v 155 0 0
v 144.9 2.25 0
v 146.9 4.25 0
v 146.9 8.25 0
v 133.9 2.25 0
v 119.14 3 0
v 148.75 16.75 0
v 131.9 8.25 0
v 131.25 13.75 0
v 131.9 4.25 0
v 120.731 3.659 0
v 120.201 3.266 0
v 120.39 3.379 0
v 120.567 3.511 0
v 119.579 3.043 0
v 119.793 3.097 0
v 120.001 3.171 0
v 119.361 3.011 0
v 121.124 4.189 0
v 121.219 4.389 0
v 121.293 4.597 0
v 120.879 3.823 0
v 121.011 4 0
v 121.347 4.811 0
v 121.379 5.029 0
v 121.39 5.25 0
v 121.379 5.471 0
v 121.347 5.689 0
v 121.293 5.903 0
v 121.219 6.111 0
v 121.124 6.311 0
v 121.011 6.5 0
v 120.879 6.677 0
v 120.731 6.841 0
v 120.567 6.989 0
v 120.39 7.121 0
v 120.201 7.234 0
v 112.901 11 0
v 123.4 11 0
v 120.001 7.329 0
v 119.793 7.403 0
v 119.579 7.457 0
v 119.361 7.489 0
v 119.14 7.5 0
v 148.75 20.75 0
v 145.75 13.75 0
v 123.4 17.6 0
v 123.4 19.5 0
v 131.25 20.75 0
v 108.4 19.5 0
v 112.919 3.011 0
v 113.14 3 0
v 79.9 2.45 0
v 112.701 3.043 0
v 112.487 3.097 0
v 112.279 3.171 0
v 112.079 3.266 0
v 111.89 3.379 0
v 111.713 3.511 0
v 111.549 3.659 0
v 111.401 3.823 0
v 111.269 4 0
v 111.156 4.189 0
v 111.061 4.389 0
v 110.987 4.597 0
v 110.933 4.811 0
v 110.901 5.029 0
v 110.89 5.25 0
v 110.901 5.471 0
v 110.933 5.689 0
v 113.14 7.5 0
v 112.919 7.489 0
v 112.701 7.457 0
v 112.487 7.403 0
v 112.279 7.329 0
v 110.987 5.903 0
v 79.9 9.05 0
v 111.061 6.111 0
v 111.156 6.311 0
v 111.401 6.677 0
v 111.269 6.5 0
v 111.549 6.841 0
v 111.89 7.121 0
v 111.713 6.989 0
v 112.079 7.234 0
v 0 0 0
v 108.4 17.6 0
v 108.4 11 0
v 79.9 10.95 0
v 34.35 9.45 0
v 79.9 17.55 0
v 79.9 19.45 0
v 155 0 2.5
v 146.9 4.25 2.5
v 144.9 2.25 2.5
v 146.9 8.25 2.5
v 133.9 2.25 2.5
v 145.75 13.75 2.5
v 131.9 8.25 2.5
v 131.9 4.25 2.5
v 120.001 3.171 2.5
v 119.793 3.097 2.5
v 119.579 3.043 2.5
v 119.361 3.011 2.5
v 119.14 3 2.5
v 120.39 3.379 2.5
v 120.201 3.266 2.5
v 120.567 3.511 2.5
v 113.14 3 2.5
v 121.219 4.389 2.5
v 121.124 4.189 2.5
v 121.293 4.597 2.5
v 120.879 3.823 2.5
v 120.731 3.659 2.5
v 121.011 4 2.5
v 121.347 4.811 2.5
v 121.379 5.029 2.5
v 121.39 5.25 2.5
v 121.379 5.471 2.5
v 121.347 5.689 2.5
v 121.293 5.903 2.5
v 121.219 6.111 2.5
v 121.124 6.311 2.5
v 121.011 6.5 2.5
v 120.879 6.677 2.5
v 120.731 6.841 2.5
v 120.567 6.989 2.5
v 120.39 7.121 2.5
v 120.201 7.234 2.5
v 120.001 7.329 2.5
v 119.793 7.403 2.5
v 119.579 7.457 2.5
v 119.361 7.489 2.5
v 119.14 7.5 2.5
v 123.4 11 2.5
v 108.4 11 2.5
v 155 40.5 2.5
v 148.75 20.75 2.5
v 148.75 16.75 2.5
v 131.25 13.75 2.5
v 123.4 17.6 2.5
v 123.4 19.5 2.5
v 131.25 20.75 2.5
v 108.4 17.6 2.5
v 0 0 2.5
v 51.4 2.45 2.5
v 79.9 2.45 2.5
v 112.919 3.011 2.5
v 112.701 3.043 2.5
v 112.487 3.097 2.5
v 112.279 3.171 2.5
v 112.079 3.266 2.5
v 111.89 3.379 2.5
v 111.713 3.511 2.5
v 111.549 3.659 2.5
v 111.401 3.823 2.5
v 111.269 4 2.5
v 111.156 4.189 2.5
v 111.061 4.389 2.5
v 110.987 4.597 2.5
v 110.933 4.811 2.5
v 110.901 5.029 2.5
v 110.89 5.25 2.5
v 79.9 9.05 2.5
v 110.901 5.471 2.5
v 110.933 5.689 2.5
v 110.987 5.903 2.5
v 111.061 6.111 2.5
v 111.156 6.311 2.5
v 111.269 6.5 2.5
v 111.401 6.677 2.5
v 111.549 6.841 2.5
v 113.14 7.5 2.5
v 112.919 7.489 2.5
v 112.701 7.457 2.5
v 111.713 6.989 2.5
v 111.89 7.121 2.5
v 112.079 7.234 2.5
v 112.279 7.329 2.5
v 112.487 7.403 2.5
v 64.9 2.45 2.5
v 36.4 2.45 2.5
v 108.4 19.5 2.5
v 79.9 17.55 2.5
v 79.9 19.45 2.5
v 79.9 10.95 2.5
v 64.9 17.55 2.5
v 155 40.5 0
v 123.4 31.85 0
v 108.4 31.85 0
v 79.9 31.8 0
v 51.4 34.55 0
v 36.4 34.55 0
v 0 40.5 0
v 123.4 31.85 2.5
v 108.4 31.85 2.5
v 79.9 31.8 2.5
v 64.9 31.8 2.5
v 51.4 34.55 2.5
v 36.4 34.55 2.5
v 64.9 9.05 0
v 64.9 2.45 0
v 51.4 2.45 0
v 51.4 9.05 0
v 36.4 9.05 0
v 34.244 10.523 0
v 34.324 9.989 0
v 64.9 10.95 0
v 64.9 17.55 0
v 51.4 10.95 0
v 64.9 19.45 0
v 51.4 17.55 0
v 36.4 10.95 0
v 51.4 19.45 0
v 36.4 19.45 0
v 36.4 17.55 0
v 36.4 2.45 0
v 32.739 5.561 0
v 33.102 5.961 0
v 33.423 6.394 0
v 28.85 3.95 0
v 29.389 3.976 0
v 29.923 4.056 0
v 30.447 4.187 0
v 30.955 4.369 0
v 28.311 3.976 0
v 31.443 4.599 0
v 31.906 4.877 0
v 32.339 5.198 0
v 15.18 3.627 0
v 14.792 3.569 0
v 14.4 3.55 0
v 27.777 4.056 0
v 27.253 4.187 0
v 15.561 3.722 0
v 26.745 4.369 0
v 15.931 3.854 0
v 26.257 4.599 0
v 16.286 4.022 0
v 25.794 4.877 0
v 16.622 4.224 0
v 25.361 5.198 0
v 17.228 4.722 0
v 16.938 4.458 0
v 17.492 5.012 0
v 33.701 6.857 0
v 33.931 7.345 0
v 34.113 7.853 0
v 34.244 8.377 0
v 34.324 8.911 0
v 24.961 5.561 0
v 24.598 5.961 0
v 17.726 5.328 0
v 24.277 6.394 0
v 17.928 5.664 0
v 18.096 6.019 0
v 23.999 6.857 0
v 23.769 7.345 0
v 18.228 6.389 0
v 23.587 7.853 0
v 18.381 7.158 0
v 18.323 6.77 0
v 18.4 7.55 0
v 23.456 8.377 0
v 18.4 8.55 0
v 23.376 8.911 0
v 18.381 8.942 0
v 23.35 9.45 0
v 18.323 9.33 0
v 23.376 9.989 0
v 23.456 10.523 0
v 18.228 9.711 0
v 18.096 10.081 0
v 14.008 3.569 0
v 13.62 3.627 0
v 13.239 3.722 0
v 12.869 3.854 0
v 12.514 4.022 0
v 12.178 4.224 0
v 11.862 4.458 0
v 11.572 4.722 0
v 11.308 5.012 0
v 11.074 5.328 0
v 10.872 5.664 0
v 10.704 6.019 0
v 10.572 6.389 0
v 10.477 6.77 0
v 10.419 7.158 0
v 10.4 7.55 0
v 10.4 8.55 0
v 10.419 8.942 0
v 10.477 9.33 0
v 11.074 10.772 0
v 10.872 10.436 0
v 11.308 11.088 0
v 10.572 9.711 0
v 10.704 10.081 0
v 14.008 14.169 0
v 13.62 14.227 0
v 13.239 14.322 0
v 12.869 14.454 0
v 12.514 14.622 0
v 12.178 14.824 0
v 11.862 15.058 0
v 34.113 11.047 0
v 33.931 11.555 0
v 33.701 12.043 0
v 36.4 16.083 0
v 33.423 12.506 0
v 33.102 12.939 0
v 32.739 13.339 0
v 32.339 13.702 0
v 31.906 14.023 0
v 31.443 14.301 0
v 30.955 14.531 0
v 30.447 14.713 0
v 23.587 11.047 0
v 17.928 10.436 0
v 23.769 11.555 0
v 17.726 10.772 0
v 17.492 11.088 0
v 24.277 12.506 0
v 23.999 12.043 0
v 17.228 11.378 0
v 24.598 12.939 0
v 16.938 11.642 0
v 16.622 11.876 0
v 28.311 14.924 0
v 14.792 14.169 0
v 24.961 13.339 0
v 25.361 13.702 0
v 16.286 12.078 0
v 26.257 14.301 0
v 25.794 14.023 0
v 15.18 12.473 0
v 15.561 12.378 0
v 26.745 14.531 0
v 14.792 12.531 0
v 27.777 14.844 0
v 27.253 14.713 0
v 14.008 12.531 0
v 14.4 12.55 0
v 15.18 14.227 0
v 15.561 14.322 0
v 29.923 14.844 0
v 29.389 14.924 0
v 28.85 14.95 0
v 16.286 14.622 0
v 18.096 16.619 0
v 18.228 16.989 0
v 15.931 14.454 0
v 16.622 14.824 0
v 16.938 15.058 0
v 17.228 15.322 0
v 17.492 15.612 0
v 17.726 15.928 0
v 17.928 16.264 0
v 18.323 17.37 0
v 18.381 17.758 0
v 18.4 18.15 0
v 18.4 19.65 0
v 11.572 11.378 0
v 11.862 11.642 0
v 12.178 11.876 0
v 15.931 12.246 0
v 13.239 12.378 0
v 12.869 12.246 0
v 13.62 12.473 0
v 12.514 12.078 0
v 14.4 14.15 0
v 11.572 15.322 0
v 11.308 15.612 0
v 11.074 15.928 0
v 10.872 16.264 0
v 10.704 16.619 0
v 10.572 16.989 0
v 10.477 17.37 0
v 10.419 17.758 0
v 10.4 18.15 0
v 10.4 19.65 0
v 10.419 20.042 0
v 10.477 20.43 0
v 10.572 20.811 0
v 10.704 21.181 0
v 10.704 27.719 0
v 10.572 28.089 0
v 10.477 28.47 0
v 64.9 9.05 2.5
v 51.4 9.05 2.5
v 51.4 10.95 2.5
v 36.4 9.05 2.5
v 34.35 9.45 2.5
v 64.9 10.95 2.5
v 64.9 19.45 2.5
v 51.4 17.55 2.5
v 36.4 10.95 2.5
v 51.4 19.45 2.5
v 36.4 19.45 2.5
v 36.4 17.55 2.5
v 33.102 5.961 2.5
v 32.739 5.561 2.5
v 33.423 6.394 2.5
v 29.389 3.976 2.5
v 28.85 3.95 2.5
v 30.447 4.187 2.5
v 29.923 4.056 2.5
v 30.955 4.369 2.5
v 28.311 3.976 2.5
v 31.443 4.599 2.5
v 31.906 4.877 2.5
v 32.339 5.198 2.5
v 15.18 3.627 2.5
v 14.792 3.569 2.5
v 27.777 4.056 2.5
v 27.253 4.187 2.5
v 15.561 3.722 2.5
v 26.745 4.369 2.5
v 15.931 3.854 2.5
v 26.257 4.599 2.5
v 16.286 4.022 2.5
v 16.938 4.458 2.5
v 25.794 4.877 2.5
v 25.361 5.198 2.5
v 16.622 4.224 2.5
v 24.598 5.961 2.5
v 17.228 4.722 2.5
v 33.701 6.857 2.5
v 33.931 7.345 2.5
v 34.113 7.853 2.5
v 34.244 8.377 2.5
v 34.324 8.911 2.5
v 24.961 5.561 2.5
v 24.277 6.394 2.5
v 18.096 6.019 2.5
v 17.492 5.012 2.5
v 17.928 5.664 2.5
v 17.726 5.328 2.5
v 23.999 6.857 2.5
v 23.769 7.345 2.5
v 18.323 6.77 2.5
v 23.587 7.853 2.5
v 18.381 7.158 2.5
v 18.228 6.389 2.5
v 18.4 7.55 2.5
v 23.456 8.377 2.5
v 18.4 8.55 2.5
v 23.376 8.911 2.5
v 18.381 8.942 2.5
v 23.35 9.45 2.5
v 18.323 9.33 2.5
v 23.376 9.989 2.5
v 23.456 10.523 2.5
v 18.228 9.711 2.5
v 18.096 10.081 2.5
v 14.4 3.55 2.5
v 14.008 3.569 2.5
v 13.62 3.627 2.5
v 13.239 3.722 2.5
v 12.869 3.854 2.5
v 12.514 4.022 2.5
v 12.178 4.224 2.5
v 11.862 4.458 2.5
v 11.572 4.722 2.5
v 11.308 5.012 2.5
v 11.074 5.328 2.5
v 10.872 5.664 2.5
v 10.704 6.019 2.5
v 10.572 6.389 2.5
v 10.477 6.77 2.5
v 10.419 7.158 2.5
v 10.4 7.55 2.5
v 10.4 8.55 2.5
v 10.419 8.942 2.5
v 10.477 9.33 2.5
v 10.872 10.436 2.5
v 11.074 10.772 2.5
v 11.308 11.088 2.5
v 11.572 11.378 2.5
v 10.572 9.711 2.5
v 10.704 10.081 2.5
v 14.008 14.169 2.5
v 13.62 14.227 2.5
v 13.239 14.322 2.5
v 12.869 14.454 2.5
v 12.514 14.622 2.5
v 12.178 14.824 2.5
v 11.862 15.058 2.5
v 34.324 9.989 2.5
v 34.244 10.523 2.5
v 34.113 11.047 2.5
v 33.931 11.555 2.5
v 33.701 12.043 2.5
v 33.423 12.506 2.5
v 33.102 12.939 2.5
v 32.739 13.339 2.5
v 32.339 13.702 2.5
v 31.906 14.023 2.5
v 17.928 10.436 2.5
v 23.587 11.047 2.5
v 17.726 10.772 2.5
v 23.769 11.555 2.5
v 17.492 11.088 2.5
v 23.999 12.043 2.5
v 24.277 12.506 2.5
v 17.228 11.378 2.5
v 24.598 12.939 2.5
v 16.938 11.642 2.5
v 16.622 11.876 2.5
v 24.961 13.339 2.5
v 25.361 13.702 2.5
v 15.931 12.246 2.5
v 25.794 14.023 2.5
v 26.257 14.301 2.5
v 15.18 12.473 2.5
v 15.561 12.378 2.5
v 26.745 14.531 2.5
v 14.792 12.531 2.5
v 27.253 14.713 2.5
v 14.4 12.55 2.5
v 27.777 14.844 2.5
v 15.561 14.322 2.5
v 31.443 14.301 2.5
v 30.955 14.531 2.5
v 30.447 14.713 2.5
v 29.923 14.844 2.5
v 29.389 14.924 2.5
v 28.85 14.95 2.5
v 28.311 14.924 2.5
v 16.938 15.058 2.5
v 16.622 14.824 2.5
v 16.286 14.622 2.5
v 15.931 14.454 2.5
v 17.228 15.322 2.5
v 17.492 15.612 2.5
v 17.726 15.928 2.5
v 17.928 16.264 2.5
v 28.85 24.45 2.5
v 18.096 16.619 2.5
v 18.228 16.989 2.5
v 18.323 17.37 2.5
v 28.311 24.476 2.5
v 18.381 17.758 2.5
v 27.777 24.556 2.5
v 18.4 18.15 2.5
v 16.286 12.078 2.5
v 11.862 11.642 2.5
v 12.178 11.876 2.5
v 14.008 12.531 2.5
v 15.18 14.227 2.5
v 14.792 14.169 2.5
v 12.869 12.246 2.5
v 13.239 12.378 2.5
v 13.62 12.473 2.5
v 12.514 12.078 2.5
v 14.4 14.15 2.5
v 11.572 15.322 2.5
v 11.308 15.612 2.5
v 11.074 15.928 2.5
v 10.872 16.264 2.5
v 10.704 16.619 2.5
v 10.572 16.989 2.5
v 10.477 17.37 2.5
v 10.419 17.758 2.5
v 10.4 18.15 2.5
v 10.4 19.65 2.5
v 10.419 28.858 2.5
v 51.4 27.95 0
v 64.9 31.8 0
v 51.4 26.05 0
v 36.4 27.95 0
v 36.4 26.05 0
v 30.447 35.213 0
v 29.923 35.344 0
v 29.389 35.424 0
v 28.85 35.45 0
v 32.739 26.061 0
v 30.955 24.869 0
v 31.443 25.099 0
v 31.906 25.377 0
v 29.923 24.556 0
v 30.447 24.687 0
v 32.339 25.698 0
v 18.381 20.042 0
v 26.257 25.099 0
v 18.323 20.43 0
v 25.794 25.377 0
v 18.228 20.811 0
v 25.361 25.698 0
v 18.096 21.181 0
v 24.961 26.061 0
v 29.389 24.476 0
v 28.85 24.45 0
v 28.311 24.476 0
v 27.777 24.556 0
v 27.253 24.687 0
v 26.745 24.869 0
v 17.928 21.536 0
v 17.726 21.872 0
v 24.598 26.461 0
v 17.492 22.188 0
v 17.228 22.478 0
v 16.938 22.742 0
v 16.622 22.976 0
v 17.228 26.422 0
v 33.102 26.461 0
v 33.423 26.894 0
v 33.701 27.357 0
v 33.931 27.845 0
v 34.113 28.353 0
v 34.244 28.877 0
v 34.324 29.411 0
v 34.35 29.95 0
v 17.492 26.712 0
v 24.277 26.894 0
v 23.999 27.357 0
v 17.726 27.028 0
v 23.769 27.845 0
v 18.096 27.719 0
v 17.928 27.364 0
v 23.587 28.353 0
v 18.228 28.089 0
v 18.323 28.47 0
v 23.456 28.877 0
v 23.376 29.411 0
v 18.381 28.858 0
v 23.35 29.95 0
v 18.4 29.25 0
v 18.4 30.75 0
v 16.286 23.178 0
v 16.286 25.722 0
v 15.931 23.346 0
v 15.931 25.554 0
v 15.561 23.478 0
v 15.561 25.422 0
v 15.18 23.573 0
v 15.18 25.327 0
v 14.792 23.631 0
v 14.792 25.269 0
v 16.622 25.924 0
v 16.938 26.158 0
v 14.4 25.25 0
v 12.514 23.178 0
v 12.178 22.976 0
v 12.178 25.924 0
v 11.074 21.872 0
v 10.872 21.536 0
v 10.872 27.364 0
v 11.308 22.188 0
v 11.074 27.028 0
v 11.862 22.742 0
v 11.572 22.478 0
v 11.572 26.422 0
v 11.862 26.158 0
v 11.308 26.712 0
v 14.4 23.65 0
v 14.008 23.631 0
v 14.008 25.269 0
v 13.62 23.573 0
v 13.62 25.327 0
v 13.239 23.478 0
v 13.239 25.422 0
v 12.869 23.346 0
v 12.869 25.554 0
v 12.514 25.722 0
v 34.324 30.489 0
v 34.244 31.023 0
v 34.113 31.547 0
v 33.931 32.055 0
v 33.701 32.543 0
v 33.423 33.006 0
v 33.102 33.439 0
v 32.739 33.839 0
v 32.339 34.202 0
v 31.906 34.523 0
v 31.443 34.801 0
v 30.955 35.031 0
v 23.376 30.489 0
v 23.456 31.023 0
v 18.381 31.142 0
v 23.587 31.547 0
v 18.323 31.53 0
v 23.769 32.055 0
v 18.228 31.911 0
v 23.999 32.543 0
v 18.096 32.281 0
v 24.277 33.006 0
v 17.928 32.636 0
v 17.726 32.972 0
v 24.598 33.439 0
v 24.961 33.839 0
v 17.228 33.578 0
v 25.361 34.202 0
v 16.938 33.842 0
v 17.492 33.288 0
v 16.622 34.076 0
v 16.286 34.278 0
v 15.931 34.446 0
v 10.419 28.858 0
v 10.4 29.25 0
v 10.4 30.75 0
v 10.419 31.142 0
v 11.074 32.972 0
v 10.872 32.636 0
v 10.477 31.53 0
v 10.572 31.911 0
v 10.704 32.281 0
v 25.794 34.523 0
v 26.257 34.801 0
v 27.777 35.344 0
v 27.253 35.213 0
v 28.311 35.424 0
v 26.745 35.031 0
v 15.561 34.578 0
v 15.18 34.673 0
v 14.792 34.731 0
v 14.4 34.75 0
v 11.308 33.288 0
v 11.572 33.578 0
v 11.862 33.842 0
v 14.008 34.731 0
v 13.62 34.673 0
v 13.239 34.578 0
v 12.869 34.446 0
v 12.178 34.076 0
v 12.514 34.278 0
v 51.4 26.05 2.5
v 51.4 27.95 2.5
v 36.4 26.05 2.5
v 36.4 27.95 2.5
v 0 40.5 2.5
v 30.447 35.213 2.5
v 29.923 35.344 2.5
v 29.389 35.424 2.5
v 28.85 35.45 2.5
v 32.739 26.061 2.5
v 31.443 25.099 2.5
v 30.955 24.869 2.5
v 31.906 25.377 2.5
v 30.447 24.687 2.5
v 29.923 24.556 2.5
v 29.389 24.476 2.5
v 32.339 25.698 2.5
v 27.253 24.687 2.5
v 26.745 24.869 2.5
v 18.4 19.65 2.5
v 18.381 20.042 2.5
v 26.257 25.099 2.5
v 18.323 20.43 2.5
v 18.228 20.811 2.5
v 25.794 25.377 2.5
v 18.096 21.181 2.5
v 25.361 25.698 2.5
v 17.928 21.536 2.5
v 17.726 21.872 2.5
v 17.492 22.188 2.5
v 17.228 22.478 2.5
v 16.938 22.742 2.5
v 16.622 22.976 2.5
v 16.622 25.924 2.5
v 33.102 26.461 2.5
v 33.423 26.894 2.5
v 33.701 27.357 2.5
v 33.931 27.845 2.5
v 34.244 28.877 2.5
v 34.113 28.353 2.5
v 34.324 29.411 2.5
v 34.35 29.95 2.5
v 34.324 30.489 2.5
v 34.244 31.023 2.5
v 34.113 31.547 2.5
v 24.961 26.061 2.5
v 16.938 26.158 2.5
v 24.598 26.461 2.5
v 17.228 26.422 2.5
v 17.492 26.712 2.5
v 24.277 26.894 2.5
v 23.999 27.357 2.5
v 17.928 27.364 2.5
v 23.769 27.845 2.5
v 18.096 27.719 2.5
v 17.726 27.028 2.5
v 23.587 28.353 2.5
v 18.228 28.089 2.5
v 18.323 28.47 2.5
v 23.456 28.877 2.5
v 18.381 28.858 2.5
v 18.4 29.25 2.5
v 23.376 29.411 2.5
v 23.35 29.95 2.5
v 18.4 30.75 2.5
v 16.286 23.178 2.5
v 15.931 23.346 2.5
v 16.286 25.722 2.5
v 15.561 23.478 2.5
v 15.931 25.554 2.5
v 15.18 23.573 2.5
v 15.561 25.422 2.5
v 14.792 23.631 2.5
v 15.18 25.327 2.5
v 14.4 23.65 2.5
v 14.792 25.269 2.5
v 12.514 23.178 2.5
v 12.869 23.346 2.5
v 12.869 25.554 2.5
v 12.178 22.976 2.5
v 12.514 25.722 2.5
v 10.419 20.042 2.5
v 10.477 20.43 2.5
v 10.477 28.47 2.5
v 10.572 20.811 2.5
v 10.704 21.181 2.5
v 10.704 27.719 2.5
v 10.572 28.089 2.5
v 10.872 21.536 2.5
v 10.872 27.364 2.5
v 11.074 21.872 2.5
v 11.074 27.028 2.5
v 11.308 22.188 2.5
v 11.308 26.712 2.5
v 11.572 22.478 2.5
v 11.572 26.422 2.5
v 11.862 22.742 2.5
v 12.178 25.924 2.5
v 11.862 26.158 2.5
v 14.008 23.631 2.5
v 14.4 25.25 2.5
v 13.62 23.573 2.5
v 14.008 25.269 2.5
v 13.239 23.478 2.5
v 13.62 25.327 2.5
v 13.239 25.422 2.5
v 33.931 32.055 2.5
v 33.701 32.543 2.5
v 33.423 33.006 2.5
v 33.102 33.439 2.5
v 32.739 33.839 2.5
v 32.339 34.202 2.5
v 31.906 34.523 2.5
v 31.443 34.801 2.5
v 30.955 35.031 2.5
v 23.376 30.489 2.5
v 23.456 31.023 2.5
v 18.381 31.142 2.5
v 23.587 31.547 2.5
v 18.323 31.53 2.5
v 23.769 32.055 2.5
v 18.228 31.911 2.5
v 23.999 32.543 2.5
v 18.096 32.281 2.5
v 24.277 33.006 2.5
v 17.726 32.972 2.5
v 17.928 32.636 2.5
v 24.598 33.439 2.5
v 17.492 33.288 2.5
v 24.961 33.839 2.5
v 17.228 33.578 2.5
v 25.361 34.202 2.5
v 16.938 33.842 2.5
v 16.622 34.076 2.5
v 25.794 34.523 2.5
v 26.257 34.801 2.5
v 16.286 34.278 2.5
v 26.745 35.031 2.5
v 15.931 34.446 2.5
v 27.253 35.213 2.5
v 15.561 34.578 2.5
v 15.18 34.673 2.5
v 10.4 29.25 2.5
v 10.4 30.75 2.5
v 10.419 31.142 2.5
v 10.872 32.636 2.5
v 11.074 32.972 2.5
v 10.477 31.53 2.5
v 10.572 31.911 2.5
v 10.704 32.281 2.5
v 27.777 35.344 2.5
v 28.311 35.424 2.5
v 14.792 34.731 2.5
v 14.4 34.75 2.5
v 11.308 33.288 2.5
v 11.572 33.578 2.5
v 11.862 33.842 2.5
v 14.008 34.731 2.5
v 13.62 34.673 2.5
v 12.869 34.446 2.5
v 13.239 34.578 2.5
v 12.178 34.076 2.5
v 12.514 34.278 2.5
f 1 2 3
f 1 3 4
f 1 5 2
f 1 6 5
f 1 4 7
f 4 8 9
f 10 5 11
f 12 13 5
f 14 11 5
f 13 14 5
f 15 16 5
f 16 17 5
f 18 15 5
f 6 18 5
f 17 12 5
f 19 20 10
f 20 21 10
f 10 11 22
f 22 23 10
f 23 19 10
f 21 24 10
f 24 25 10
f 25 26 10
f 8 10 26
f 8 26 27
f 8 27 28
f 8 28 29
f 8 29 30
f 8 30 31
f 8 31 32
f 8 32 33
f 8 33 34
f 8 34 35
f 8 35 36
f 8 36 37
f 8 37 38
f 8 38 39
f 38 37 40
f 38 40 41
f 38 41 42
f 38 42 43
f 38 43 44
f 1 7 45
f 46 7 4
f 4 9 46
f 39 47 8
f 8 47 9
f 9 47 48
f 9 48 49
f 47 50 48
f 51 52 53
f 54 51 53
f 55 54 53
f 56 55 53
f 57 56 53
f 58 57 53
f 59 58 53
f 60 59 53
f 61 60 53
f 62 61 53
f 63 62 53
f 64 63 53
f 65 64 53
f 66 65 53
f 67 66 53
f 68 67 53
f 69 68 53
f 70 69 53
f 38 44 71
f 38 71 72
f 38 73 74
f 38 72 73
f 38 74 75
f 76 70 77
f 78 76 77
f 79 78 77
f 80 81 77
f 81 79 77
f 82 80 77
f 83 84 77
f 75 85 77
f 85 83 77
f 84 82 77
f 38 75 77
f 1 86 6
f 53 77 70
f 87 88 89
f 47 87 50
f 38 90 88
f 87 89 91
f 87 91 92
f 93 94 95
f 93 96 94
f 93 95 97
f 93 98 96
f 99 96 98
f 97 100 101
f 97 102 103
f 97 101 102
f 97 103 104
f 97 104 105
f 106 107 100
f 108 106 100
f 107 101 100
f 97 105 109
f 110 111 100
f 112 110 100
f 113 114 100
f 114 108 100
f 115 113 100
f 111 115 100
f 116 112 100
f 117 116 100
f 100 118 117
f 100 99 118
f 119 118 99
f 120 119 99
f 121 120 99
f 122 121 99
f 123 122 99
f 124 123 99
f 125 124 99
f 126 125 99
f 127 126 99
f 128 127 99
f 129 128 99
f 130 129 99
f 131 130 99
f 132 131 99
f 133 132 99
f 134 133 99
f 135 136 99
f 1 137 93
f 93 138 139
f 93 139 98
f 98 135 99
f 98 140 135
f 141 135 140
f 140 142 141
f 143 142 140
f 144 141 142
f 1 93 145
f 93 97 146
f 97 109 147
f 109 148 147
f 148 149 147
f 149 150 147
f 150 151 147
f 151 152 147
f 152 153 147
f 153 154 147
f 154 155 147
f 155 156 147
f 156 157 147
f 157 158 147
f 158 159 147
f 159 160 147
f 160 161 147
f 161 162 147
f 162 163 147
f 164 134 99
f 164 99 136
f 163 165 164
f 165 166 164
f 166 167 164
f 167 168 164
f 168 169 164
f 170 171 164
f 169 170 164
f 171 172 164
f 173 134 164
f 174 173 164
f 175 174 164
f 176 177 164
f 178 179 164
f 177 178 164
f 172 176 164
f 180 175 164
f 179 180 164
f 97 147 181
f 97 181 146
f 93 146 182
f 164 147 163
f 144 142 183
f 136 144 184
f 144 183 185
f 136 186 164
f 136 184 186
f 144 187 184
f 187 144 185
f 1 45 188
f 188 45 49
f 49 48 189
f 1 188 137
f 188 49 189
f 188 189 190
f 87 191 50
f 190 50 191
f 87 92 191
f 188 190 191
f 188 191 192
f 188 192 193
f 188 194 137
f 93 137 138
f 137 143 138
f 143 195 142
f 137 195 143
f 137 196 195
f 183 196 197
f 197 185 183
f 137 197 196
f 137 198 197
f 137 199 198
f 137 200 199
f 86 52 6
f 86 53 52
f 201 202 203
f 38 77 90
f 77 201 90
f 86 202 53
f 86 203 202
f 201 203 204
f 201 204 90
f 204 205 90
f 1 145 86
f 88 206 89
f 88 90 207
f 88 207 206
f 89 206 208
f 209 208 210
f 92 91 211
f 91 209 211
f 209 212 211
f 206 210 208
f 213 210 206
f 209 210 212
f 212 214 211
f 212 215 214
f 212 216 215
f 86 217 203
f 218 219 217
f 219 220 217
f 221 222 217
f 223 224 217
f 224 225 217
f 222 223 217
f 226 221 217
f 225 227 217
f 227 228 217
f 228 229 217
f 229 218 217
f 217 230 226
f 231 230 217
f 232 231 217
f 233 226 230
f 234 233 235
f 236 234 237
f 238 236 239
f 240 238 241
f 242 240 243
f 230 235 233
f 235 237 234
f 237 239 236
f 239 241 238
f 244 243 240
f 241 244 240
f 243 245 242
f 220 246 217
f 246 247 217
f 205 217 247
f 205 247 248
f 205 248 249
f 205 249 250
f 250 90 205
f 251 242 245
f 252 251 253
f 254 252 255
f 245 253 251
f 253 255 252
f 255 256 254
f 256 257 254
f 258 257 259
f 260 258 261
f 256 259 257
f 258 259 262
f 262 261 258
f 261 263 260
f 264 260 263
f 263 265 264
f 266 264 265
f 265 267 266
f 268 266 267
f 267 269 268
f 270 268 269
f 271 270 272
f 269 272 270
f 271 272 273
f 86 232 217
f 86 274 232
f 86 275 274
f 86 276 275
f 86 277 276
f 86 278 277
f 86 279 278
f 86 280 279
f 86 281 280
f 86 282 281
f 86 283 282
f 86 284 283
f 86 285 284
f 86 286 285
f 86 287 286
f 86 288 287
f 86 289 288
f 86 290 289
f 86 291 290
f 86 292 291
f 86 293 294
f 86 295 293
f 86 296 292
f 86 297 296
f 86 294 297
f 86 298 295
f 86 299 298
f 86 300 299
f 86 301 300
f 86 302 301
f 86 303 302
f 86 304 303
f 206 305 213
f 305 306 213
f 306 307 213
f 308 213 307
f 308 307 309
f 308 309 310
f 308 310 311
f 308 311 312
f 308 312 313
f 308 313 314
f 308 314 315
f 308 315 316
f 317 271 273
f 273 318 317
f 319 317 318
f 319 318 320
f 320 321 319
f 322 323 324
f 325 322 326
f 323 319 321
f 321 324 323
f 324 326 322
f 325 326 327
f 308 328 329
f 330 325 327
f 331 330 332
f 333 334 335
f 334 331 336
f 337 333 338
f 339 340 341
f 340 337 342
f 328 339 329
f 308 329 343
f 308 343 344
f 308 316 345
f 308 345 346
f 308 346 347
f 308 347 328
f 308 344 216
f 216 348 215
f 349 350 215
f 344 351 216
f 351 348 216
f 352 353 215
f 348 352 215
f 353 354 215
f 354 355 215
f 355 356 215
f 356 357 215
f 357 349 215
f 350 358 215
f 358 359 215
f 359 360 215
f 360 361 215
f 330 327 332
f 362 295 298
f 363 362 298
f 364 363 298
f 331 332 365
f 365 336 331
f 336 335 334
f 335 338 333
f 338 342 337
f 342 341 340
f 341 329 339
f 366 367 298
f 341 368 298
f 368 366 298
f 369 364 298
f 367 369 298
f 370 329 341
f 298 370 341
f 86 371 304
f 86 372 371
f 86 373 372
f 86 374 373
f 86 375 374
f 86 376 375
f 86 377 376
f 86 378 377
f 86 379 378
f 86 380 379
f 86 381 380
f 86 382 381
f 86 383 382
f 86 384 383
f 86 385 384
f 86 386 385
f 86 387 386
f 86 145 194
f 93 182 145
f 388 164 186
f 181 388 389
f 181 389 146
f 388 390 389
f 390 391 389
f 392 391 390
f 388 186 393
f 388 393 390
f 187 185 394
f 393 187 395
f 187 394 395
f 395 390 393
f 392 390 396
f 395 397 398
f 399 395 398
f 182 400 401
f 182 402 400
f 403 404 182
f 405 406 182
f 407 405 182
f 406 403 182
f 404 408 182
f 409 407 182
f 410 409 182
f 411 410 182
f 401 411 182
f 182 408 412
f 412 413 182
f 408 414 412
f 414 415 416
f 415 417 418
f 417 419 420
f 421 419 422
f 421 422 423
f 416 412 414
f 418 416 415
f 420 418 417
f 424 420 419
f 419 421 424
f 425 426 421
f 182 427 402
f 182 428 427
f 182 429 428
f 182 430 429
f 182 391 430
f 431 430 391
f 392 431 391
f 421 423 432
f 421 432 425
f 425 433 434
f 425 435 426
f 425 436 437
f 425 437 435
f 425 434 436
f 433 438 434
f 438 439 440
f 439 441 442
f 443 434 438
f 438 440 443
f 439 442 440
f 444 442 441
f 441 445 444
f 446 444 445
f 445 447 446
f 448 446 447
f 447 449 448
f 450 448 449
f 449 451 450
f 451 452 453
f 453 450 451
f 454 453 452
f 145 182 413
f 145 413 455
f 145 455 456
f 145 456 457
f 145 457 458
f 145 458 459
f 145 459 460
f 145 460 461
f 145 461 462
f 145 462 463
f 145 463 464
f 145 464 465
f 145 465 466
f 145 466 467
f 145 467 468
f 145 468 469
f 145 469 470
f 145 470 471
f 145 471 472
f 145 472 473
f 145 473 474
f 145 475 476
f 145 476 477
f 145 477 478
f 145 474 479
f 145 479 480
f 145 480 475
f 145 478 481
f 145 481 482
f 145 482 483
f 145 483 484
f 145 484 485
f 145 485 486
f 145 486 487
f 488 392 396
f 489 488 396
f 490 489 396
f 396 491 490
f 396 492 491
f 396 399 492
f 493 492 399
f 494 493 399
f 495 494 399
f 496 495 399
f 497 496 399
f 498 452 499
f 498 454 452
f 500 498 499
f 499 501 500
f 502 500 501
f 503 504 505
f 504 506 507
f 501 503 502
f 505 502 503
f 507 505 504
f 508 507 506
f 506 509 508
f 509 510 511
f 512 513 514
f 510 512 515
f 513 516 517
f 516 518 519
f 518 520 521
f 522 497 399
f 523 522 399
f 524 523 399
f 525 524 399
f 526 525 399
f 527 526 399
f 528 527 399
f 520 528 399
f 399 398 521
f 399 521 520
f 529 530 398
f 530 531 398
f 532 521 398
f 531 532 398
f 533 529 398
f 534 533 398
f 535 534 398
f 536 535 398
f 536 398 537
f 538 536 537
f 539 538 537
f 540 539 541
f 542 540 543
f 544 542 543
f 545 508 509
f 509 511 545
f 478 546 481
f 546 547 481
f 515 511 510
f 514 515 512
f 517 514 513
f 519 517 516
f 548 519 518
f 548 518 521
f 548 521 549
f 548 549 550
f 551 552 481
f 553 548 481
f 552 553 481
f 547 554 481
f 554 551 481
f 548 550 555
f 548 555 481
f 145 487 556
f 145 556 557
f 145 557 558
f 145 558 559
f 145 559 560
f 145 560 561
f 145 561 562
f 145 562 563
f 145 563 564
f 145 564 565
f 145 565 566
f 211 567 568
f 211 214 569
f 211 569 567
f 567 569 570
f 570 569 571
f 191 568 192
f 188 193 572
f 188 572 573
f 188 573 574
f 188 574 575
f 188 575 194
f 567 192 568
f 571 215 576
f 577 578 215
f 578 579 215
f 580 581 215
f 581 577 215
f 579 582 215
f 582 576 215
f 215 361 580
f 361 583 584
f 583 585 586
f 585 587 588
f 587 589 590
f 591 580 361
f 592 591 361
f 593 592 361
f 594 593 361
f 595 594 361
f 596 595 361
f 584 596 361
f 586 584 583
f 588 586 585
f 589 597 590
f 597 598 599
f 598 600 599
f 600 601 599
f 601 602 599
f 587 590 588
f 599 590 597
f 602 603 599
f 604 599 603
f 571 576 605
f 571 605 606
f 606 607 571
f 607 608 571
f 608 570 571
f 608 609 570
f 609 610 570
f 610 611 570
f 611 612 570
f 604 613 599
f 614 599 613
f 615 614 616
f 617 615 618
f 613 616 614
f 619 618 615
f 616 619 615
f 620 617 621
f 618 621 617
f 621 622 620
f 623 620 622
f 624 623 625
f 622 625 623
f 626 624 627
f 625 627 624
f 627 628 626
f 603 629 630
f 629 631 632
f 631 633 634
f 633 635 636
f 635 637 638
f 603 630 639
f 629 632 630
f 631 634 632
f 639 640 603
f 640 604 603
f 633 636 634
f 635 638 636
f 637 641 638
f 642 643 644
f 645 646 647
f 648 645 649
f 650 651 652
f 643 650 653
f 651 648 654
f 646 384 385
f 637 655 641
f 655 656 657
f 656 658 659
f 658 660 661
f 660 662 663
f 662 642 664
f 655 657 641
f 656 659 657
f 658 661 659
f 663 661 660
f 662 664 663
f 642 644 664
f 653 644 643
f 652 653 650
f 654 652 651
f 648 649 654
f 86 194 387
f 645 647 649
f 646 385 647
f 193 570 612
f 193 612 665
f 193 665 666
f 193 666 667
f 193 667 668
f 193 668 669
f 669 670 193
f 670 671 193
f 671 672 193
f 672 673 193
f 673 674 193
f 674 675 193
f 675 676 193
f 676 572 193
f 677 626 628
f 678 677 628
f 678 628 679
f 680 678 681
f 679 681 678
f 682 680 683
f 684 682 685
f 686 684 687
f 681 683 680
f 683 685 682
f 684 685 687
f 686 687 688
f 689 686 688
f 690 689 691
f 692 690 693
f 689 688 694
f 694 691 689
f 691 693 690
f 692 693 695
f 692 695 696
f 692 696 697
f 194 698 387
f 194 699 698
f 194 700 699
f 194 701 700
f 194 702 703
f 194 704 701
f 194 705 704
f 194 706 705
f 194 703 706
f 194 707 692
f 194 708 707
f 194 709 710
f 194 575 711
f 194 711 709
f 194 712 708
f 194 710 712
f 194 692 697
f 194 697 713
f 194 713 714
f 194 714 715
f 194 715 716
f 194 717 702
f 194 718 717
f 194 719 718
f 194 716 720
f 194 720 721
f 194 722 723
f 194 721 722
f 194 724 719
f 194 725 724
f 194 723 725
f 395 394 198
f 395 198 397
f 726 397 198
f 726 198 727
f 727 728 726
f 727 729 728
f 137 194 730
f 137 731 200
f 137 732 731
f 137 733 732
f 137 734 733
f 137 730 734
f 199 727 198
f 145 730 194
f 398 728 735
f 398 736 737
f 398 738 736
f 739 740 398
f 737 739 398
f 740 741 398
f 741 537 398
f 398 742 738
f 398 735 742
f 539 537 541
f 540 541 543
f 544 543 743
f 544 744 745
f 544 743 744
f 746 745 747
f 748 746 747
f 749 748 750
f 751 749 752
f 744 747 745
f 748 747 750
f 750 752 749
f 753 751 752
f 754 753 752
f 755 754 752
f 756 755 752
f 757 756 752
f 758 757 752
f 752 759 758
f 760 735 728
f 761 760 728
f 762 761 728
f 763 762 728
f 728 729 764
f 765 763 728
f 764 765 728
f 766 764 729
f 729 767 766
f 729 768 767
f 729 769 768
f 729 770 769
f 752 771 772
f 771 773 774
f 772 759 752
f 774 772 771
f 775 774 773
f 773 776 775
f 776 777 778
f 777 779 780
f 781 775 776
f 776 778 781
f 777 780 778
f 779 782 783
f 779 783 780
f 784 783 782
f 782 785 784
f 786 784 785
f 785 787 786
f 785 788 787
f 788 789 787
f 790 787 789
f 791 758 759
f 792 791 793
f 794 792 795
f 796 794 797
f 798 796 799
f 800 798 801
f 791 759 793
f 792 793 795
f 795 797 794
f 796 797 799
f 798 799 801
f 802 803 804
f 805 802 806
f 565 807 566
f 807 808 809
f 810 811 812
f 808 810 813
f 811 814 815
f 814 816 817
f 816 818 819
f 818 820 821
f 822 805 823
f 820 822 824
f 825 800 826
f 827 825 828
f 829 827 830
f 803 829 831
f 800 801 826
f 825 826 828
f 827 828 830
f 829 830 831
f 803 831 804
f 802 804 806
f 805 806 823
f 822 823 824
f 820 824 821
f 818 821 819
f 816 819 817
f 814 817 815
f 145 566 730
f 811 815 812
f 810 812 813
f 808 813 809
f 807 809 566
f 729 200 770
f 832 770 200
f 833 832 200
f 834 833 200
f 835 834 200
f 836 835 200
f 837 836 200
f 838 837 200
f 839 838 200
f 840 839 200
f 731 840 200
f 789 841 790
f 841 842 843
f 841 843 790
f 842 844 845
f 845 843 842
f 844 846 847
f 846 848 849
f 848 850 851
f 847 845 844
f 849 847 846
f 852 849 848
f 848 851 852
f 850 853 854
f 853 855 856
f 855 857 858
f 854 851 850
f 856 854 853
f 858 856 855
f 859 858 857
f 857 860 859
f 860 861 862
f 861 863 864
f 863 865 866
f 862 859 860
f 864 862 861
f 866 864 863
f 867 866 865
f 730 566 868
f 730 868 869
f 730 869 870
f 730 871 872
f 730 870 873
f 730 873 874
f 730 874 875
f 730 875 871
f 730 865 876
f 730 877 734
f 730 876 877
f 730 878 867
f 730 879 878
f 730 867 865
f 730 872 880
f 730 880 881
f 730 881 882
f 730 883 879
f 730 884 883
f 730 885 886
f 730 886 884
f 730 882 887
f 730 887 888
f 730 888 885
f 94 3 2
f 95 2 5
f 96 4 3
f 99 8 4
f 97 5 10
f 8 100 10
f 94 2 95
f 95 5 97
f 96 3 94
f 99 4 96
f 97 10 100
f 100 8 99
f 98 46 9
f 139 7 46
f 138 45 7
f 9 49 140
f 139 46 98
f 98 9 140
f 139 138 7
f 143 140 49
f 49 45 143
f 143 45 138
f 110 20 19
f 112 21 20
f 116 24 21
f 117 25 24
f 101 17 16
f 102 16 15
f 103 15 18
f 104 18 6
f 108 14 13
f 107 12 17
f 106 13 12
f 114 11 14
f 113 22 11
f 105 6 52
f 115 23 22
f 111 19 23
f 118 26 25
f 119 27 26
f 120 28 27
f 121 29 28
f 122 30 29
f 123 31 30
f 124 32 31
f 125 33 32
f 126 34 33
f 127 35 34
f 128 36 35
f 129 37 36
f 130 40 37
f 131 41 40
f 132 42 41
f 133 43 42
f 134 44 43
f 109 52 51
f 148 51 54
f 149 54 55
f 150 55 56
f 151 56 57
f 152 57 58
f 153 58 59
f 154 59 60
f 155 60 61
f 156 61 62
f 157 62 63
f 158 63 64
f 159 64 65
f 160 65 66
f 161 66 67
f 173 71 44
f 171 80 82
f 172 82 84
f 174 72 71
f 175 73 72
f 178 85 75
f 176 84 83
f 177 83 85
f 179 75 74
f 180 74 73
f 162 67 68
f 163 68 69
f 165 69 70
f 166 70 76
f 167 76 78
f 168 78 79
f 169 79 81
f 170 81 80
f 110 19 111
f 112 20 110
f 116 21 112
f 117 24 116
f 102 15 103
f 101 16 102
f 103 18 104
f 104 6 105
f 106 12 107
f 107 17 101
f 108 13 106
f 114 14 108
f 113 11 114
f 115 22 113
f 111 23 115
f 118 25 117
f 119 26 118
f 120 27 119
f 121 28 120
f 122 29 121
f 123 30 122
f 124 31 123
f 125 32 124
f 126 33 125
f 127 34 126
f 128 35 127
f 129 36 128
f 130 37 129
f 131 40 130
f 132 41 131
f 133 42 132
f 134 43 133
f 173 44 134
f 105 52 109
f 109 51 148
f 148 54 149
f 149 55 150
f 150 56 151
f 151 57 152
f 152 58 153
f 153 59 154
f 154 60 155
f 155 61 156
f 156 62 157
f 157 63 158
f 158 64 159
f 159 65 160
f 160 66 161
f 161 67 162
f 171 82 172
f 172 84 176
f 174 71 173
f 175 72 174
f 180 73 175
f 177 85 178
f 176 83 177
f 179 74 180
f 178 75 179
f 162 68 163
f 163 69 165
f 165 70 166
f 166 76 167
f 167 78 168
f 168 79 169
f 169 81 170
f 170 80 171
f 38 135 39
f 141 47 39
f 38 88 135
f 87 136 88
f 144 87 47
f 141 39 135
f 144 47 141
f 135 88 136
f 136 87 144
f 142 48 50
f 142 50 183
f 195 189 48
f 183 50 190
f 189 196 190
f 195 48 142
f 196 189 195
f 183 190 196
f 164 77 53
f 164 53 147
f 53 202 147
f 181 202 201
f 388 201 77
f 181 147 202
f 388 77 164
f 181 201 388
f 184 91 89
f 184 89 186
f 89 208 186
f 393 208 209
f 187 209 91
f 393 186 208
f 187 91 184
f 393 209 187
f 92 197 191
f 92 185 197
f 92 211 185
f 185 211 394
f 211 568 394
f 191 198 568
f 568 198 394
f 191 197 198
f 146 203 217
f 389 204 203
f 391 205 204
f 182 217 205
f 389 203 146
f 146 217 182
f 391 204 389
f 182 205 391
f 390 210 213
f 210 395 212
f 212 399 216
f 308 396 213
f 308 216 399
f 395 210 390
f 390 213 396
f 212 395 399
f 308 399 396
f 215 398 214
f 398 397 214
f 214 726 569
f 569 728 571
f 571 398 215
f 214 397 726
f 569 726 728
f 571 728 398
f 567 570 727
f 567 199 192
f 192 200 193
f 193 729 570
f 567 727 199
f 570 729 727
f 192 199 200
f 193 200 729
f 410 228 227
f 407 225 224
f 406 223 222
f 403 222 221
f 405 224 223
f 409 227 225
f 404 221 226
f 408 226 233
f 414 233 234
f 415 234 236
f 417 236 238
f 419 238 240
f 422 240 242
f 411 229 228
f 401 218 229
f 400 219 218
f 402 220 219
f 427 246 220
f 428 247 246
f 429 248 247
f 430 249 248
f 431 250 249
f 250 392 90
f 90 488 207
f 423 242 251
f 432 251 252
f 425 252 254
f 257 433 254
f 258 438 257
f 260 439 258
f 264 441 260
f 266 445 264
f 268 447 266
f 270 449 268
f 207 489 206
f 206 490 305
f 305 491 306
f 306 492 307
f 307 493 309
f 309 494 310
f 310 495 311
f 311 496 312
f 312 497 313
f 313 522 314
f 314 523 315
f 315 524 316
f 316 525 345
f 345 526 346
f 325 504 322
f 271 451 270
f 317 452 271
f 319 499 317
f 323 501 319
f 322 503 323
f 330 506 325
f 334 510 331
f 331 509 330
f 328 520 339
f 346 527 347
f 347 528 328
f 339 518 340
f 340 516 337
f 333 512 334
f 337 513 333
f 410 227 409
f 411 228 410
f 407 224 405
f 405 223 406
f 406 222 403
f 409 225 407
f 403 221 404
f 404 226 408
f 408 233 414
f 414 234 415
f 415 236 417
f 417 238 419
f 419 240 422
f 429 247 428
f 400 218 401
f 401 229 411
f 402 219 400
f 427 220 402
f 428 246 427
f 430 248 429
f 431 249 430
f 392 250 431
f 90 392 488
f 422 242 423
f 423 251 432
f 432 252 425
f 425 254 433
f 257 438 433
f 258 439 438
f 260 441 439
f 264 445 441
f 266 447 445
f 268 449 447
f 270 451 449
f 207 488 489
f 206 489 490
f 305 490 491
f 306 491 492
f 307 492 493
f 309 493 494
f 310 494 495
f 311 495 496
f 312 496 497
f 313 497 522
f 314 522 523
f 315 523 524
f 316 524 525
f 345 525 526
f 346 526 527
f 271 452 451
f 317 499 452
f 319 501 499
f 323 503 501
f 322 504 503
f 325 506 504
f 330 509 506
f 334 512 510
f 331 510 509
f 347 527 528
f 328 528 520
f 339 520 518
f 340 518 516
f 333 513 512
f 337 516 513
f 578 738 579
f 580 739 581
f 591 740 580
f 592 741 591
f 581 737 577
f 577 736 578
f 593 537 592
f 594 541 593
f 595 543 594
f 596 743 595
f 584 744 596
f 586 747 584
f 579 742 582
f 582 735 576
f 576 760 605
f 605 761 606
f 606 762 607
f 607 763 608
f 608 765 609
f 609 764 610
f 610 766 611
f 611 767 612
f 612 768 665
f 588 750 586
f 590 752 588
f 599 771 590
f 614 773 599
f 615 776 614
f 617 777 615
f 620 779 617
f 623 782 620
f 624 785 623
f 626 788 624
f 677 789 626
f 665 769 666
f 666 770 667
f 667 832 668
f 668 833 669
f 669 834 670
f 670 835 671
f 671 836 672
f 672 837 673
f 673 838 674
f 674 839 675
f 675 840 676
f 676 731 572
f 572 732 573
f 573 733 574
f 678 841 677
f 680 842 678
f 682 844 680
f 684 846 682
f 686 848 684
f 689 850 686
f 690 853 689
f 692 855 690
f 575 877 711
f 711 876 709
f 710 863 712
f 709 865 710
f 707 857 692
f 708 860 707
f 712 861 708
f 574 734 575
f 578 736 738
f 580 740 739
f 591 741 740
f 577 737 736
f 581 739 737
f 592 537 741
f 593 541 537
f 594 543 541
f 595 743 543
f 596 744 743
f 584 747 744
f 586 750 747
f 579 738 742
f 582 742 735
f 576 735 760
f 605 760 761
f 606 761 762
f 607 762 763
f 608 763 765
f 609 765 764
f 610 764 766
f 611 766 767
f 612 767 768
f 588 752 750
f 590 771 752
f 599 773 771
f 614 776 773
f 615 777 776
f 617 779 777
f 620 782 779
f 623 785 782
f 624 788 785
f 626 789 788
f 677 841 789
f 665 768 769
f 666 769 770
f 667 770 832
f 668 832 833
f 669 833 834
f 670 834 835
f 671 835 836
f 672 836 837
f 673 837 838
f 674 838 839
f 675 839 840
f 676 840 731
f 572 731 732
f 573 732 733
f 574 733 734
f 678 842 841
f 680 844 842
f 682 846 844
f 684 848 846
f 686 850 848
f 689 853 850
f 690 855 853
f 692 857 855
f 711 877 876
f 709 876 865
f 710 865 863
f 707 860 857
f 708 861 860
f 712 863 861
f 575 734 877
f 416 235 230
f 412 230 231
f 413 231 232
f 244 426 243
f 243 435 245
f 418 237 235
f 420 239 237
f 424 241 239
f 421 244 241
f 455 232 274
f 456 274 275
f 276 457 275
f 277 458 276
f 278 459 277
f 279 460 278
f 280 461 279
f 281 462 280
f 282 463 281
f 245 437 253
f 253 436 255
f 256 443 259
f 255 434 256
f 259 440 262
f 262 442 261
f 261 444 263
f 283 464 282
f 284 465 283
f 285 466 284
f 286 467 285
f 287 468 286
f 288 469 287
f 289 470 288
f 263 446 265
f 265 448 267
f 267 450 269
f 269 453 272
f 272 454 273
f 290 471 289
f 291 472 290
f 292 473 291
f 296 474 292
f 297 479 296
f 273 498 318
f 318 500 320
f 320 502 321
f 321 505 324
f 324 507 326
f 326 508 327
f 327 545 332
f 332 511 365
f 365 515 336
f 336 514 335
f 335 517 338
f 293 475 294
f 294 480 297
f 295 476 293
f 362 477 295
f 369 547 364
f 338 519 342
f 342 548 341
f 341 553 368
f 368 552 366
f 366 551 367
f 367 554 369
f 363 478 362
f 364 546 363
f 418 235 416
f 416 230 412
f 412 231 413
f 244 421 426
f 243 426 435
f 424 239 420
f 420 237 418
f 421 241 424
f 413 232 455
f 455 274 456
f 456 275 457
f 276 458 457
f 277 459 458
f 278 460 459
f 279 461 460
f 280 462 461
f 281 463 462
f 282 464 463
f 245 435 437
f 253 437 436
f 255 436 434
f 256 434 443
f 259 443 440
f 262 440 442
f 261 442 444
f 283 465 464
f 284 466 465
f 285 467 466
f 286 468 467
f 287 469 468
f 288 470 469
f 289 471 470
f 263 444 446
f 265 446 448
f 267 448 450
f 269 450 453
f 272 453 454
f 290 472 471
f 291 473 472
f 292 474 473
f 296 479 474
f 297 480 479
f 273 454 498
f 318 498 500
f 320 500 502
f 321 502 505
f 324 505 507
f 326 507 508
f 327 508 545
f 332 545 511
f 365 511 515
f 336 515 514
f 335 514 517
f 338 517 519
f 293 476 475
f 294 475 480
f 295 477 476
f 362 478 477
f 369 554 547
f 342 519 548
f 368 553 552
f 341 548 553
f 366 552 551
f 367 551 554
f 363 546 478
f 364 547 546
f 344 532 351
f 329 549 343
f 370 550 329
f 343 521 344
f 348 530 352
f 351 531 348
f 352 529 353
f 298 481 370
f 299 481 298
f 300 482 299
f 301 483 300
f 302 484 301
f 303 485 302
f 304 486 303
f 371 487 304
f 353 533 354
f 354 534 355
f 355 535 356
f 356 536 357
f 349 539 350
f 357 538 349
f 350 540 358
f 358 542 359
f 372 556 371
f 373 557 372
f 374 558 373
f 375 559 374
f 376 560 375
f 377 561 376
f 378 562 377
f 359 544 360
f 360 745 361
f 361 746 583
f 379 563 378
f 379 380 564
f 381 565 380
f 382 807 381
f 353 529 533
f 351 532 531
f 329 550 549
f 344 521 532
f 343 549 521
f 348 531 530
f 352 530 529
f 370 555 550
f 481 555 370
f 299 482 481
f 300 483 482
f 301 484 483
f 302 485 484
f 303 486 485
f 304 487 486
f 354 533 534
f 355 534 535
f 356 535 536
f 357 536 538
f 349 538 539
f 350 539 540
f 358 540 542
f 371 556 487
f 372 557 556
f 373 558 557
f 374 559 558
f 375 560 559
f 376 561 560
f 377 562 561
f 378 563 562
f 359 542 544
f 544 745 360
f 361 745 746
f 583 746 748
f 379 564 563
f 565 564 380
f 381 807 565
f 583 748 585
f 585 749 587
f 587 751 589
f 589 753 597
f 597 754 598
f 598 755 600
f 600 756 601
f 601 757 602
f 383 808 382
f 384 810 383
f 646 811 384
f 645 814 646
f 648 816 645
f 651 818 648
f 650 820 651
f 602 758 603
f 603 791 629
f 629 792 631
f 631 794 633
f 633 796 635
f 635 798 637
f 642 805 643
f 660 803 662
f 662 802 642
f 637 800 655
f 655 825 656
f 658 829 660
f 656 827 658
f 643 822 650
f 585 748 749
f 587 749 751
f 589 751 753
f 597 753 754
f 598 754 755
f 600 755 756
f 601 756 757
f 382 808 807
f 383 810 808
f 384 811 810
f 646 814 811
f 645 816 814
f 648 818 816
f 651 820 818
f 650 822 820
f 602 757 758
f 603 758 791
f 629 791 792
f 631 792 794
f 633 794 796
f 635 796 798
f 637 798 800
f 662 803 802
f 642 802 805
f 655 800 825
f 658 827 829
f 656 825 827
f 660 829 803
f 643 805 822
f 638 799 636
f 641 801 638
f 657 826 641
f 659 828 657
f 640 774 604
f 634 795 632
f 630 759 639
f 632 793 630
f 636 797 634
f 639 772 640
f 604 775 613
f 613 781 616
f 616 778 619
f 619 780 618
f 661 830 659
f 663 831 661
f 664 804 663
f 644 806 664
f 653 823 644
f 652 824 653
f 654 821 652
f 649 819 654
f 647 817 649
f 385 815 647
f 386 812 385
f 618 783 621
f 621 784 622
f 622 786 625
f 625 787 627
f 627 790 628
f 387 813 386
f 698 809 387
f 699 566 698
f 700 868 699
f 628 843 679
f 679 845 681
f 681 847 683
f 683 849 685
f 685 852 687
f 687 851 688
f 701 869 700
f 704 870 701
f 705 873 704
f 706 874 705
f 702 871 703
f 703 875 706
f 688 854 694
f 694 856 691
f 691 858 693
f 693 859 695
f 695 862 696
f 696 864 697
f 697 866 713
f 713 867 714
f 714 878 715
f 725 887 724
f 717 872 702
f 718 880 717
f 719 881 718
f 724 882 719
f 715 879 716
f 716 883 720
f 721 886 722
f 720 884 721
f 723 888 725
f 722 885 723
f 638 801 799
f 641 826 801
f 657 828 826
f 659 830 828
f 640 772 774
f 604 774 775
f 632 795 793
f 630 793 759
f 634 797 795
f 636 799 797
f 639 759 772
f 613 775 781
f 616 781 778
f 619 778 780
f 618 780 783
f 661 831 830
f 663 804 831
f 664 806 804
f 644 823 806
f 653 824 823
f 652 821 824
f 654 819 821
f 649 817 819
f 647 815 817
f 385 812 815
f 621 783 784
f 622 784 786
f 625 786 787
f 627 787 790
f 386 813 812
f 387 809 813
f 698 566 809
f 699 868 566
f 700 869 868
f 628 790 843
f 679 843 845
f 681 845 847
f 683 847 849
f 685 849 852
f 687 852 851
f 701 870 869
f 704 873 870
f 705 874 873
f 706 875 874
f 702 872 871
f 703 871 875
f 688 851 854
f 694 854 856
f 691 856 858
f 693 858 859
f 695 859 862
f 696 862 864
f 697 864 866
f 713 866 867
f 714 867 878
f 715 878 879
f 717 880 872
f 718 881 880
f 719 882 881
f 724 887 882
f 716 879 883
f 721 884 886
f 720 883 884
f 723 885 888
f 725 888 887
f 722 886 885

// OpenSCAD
// Asrock B860I IO faceplate. Caliper-measured, mm. Layout below is derived from these.
plate_thickness = 2.5;
plate_width = 155.00;
plate_height = 40.50;

dp_w = 17.5;
dp_h = 7.0;
hdmi_w = 15.0;
hdmi_h = 6.0;
usbc_w = 10.5;
usbc_h = 4.5;
usbc_x_offset = 0.36-0.6;  // the physical USB-C port is off-centre in its stack
usb_a_w = 15.0;
usb_a_h = 6.6;
eth_w = 15.0;
eth_h = 12.35;
wifi_hole_dia = 10.0;  // layout value - hole centres derive from it, leave at 10.0
wifi_hole_growth = 1.0;  // extra cut diameter only; centres unchanged
audio_w = 8.0;
audio_h_bottom = 9.0;
audio_h_middle = 9.5;
audio_h_top = 9.5;

bottom_edge_to_hdmi_bottom = 2.25;
hdmi_top_to_dp_bottom = 5.5;
bottom_edge_to_usb_bottoms = 2.45;
bottom_edge_to_stack1_bottom = 3.00;
usbc_to_usba_gap = 3.5;
usb_to_usb_gap = 1.9;
wifi_gap = 10.5;
top_edge_to_wifi_top = 5.55;
audio_gap = 1.6;
top_edge_to_audio_top = 5.75;

// X gaps are between metal housings.
left_edge_to_dp_left = 6.25;
left_edge_to_hdmi_left = 8.10;
hdmi_right_to_usbc_stack_left = 8.50;
usbc_stack_right_to_dual_usb_left = 28.50;
dual_usb_right_to_quad_usb_left = 13.50;
quad_usb_right_to_wifi_left = 3.05;
right_edge_to_audio_right = 10.40;
dp_x = left_edge_to_dp_left + (17.5 / 2);  // 17.5 = DP width
hdmi_x = left_edge_to_hdmi_left + (15.0 / 2);  // 15.0 = HDMI width
hdmi_y = bottom_edge_to_hdmi_bottom + (hdmi_h / 2);
dp_y = hdmi_y + (hdmi_h / 2) + hdmi_top_to_dp_bottom + (dp_h / 2);

usbc_1g_stack_x = (left_edge_to_hdmi_left + 15.0) + hdmi_right_to_usbc_stack_left + (15.0 / 2);
dual_usb_2_5g_stack_x = (usbc_1g_stack_x + 7.5) + usbc_stack_right_to_dual_usb_left + (15.0 / 2);
quad_usb_stack_x = (dual_usb_2_5g_stack_x + 7.5) + dual_usb_right_to_quad_usb_left + (15.0 / 2);
wifi_x_shift = 0.5;  // + = toward +X in the final mirrored STL (hence subtracted below)
wifi_x = (quad_usb_stack_x + 7.5) + quad_usb_right_to_wifi_left + (10.0 / 2) - wifi_x_shift;
audio_x = plate_width - right_edge_to_audio_right - (8.0 / 2);
usbc_y = bottom_edge_to_stack1_bottom + (usbc_h / 2);
usb_1_y = bottom_edge_to_usb_bottoms + (usb_a_h / 2);
usb_2_y = usb_1_y + (usb_a_h / 2) + usb_to_usb_gap + (usb_a_h / 2);
usb_3_y = usb_2_y + (usb_a_h / 2) + usb_to_usb_gap + (usb_a_h / 2);
usb_4_y = usb_3_y + (usb_a_h / 2) + usb_to_usb_gap + (usb_a_h / 2);

eth_above_2_y = usb_2_y + (usb_a_h / 2) + usb_to_usb_gap + (eth_h / 2);

usbc_stack_usb_y = usbc_y + (usbc_h / 2) + usbc_to_usba_gap + (usb_a_h / 2);
usbc_stack_eth_y = usbc_stack_usb_y + (usb_a_h / 2) + usb_to_usb_gap + (eth_h / 2);

wifi_top_edge = plate_height - top_edge_to_wifi_top;
wifi_2_y = wifi_top_edge - (wifi_hole_dia / 2);
wifi_1_y = wifi_2_y - (wifi_hole_dia / 2) - wifi_gap - (wifi_hole_dia / 2);

audio_top_edge = plate_height - top_edge_to_audio_top;
audio_3_y = audio_top_edge - (audio_h_top / 2);
audio_2_y = audio_3_y - (audio_h_top / 2) - audio_gap - (audio_h_middle / 2);
audio_1_y = audio_2_y - (audio_h_middle / 2) - audio_gap - (audio_h_bottom / 2);

module io_faceplate() {
    difference() {
        cube([plate_width, plate_height, plate_thickness]);

        translate([hdmi_x, hdmi_y, 0])
            hdmi_cutout(plate_thickness);

        translate([dp_x, dp_y, 0])
            dp_cutout(plate_thickness);

        translate([usbc_1g_stack_x + usbc_x_offset, usbc_y, 0])
            pill_cutout(usbc_w, usbc_h, plate_thickness);
        translate([usbc_1g_stack_x, usbc_stack_usb_y, 0])
            cut_rect(usb_a_w, usb_a_h, plate_thickness);
        translate([usbc_1g_stack_x, usbc_stack_eth_y, 0])
            cut_rect(eth_w, eth_h, plate_thickness);

        translate([dual_usb_2_5g_stack_x, usb_1_y, 0])
            cut_rect(usb_a_w, usb_a_h, plate_thickness);
        translate([dual_usb_2_5g_stack_x, usb_2_y, 0])
            cut_rect(usb_a_w, usb_a_h, plate_thickness);
        translate([dual_usb_2_5g_stack_x, eth_above_2_y, 0])
            cut_rect(eth_w, eth_h, plate_thickness);

        translate([quad_usb_stack_x, usb_1_y, 0])
            cut_rect(usb_a_w, usb_a_h, plate_thickness);
        translate([quad_usb_stack_x, usb_2_y, 0])
            cut_rect(usb_a_w, usb_a_h, plate_thickness);
        translate([quad_usb_stack_x, usb_3_y, 0])
            cut_rect(usb_a_w, usb_a_h, plate_thickness);
        translate([quad_usb_stack_x, usb_4_y, 0])
            cut_rect(usb_a_w, usb_a_h, plate_thickness);

        translate([wifi_x, wifi_1_y, 0])
            cut_circle((wifi_hole_dia + wifi_hole_growth) / 2, plate_thickness);
        translate([wifi_x, wifi_2_y, 0])
            cut_circle((wifi_hole_dia + wifi_hole_growth) / 2, plate_thickness);

        translate([audio_x, audio_1_y, 0])
            pill_cutout(audio_w, audio_h_bottom, plate_thickness);
        translate([audio_x, audio_2_y, 0])
            pill_cutout(audio_w, audio_h_middle, plate_thickness);
        translate([audio_x, audio_3_y, 0])
            pill_cutout(audio_w, audio_h_top, plate_thickness);
    }
}

module cut_rect(w, h, t) {
    translate([0, 0, -1])
        linear_extrude(t + 2)
            square([w, h], center=true);
}

module cut_circle(r, t) {
    translate([0, 0, -1])
        linear_extrude(t + 2)
            circle(r=r, $fn=64);
}

module hdmi_cutout(t) {
    w = 15.0;
    h = 6.0;
    c = 2.0;

    points = [
        [-w/2, h/2],
        [w/2, h/2],
        [w/2, -h/2 + c],
        [w/2 - c, -h/2],
        [-w/2 + c, -h/2],
        [-w/2, -h/2 + c]
    ];
    translate([0, 0, -1])
        linear_extrude(t + 2)
            polygon(points);
}

module dp_cutout(t) {
    w = 17.5;
    h = 7.0;
    c = 3.0;

    points = [
        [-w/2, h/2],
        [w/2, h/2],
        [w/2, -h/2],
        [-w/2 + c, -h/2],
        [-w/2, -h/2 + c]
    ];
    translate([0, 0, -1])
        linear_extrude(t + 2)
            polygon(points);
}

module pill_cutout(w, h, t) {
    translate([0, 0, -1])
    linear_extrude(t + 2) {
        if (w > h) {
            r = h / 2;
            hull() {
                translate([-w/2 + r, 0]) circle(r=r, $fn=64);
                translate([w/2 - r, 0]) circle(r=r, $fn=64);
            }
        } else {
            r = w / 2;
            hull() {
                translate([0, -h/2 + r]) circle(r=r, $fn=64);
                translate([0, h/2 - r]) circle(r=r, $fn=64);
            }
        }
    }
}

// Mirrored so video is on +X and audio on -X.
translate([plate_width, 0, 0])
    mirror([1, 0, 0])
        io_faceplate();
